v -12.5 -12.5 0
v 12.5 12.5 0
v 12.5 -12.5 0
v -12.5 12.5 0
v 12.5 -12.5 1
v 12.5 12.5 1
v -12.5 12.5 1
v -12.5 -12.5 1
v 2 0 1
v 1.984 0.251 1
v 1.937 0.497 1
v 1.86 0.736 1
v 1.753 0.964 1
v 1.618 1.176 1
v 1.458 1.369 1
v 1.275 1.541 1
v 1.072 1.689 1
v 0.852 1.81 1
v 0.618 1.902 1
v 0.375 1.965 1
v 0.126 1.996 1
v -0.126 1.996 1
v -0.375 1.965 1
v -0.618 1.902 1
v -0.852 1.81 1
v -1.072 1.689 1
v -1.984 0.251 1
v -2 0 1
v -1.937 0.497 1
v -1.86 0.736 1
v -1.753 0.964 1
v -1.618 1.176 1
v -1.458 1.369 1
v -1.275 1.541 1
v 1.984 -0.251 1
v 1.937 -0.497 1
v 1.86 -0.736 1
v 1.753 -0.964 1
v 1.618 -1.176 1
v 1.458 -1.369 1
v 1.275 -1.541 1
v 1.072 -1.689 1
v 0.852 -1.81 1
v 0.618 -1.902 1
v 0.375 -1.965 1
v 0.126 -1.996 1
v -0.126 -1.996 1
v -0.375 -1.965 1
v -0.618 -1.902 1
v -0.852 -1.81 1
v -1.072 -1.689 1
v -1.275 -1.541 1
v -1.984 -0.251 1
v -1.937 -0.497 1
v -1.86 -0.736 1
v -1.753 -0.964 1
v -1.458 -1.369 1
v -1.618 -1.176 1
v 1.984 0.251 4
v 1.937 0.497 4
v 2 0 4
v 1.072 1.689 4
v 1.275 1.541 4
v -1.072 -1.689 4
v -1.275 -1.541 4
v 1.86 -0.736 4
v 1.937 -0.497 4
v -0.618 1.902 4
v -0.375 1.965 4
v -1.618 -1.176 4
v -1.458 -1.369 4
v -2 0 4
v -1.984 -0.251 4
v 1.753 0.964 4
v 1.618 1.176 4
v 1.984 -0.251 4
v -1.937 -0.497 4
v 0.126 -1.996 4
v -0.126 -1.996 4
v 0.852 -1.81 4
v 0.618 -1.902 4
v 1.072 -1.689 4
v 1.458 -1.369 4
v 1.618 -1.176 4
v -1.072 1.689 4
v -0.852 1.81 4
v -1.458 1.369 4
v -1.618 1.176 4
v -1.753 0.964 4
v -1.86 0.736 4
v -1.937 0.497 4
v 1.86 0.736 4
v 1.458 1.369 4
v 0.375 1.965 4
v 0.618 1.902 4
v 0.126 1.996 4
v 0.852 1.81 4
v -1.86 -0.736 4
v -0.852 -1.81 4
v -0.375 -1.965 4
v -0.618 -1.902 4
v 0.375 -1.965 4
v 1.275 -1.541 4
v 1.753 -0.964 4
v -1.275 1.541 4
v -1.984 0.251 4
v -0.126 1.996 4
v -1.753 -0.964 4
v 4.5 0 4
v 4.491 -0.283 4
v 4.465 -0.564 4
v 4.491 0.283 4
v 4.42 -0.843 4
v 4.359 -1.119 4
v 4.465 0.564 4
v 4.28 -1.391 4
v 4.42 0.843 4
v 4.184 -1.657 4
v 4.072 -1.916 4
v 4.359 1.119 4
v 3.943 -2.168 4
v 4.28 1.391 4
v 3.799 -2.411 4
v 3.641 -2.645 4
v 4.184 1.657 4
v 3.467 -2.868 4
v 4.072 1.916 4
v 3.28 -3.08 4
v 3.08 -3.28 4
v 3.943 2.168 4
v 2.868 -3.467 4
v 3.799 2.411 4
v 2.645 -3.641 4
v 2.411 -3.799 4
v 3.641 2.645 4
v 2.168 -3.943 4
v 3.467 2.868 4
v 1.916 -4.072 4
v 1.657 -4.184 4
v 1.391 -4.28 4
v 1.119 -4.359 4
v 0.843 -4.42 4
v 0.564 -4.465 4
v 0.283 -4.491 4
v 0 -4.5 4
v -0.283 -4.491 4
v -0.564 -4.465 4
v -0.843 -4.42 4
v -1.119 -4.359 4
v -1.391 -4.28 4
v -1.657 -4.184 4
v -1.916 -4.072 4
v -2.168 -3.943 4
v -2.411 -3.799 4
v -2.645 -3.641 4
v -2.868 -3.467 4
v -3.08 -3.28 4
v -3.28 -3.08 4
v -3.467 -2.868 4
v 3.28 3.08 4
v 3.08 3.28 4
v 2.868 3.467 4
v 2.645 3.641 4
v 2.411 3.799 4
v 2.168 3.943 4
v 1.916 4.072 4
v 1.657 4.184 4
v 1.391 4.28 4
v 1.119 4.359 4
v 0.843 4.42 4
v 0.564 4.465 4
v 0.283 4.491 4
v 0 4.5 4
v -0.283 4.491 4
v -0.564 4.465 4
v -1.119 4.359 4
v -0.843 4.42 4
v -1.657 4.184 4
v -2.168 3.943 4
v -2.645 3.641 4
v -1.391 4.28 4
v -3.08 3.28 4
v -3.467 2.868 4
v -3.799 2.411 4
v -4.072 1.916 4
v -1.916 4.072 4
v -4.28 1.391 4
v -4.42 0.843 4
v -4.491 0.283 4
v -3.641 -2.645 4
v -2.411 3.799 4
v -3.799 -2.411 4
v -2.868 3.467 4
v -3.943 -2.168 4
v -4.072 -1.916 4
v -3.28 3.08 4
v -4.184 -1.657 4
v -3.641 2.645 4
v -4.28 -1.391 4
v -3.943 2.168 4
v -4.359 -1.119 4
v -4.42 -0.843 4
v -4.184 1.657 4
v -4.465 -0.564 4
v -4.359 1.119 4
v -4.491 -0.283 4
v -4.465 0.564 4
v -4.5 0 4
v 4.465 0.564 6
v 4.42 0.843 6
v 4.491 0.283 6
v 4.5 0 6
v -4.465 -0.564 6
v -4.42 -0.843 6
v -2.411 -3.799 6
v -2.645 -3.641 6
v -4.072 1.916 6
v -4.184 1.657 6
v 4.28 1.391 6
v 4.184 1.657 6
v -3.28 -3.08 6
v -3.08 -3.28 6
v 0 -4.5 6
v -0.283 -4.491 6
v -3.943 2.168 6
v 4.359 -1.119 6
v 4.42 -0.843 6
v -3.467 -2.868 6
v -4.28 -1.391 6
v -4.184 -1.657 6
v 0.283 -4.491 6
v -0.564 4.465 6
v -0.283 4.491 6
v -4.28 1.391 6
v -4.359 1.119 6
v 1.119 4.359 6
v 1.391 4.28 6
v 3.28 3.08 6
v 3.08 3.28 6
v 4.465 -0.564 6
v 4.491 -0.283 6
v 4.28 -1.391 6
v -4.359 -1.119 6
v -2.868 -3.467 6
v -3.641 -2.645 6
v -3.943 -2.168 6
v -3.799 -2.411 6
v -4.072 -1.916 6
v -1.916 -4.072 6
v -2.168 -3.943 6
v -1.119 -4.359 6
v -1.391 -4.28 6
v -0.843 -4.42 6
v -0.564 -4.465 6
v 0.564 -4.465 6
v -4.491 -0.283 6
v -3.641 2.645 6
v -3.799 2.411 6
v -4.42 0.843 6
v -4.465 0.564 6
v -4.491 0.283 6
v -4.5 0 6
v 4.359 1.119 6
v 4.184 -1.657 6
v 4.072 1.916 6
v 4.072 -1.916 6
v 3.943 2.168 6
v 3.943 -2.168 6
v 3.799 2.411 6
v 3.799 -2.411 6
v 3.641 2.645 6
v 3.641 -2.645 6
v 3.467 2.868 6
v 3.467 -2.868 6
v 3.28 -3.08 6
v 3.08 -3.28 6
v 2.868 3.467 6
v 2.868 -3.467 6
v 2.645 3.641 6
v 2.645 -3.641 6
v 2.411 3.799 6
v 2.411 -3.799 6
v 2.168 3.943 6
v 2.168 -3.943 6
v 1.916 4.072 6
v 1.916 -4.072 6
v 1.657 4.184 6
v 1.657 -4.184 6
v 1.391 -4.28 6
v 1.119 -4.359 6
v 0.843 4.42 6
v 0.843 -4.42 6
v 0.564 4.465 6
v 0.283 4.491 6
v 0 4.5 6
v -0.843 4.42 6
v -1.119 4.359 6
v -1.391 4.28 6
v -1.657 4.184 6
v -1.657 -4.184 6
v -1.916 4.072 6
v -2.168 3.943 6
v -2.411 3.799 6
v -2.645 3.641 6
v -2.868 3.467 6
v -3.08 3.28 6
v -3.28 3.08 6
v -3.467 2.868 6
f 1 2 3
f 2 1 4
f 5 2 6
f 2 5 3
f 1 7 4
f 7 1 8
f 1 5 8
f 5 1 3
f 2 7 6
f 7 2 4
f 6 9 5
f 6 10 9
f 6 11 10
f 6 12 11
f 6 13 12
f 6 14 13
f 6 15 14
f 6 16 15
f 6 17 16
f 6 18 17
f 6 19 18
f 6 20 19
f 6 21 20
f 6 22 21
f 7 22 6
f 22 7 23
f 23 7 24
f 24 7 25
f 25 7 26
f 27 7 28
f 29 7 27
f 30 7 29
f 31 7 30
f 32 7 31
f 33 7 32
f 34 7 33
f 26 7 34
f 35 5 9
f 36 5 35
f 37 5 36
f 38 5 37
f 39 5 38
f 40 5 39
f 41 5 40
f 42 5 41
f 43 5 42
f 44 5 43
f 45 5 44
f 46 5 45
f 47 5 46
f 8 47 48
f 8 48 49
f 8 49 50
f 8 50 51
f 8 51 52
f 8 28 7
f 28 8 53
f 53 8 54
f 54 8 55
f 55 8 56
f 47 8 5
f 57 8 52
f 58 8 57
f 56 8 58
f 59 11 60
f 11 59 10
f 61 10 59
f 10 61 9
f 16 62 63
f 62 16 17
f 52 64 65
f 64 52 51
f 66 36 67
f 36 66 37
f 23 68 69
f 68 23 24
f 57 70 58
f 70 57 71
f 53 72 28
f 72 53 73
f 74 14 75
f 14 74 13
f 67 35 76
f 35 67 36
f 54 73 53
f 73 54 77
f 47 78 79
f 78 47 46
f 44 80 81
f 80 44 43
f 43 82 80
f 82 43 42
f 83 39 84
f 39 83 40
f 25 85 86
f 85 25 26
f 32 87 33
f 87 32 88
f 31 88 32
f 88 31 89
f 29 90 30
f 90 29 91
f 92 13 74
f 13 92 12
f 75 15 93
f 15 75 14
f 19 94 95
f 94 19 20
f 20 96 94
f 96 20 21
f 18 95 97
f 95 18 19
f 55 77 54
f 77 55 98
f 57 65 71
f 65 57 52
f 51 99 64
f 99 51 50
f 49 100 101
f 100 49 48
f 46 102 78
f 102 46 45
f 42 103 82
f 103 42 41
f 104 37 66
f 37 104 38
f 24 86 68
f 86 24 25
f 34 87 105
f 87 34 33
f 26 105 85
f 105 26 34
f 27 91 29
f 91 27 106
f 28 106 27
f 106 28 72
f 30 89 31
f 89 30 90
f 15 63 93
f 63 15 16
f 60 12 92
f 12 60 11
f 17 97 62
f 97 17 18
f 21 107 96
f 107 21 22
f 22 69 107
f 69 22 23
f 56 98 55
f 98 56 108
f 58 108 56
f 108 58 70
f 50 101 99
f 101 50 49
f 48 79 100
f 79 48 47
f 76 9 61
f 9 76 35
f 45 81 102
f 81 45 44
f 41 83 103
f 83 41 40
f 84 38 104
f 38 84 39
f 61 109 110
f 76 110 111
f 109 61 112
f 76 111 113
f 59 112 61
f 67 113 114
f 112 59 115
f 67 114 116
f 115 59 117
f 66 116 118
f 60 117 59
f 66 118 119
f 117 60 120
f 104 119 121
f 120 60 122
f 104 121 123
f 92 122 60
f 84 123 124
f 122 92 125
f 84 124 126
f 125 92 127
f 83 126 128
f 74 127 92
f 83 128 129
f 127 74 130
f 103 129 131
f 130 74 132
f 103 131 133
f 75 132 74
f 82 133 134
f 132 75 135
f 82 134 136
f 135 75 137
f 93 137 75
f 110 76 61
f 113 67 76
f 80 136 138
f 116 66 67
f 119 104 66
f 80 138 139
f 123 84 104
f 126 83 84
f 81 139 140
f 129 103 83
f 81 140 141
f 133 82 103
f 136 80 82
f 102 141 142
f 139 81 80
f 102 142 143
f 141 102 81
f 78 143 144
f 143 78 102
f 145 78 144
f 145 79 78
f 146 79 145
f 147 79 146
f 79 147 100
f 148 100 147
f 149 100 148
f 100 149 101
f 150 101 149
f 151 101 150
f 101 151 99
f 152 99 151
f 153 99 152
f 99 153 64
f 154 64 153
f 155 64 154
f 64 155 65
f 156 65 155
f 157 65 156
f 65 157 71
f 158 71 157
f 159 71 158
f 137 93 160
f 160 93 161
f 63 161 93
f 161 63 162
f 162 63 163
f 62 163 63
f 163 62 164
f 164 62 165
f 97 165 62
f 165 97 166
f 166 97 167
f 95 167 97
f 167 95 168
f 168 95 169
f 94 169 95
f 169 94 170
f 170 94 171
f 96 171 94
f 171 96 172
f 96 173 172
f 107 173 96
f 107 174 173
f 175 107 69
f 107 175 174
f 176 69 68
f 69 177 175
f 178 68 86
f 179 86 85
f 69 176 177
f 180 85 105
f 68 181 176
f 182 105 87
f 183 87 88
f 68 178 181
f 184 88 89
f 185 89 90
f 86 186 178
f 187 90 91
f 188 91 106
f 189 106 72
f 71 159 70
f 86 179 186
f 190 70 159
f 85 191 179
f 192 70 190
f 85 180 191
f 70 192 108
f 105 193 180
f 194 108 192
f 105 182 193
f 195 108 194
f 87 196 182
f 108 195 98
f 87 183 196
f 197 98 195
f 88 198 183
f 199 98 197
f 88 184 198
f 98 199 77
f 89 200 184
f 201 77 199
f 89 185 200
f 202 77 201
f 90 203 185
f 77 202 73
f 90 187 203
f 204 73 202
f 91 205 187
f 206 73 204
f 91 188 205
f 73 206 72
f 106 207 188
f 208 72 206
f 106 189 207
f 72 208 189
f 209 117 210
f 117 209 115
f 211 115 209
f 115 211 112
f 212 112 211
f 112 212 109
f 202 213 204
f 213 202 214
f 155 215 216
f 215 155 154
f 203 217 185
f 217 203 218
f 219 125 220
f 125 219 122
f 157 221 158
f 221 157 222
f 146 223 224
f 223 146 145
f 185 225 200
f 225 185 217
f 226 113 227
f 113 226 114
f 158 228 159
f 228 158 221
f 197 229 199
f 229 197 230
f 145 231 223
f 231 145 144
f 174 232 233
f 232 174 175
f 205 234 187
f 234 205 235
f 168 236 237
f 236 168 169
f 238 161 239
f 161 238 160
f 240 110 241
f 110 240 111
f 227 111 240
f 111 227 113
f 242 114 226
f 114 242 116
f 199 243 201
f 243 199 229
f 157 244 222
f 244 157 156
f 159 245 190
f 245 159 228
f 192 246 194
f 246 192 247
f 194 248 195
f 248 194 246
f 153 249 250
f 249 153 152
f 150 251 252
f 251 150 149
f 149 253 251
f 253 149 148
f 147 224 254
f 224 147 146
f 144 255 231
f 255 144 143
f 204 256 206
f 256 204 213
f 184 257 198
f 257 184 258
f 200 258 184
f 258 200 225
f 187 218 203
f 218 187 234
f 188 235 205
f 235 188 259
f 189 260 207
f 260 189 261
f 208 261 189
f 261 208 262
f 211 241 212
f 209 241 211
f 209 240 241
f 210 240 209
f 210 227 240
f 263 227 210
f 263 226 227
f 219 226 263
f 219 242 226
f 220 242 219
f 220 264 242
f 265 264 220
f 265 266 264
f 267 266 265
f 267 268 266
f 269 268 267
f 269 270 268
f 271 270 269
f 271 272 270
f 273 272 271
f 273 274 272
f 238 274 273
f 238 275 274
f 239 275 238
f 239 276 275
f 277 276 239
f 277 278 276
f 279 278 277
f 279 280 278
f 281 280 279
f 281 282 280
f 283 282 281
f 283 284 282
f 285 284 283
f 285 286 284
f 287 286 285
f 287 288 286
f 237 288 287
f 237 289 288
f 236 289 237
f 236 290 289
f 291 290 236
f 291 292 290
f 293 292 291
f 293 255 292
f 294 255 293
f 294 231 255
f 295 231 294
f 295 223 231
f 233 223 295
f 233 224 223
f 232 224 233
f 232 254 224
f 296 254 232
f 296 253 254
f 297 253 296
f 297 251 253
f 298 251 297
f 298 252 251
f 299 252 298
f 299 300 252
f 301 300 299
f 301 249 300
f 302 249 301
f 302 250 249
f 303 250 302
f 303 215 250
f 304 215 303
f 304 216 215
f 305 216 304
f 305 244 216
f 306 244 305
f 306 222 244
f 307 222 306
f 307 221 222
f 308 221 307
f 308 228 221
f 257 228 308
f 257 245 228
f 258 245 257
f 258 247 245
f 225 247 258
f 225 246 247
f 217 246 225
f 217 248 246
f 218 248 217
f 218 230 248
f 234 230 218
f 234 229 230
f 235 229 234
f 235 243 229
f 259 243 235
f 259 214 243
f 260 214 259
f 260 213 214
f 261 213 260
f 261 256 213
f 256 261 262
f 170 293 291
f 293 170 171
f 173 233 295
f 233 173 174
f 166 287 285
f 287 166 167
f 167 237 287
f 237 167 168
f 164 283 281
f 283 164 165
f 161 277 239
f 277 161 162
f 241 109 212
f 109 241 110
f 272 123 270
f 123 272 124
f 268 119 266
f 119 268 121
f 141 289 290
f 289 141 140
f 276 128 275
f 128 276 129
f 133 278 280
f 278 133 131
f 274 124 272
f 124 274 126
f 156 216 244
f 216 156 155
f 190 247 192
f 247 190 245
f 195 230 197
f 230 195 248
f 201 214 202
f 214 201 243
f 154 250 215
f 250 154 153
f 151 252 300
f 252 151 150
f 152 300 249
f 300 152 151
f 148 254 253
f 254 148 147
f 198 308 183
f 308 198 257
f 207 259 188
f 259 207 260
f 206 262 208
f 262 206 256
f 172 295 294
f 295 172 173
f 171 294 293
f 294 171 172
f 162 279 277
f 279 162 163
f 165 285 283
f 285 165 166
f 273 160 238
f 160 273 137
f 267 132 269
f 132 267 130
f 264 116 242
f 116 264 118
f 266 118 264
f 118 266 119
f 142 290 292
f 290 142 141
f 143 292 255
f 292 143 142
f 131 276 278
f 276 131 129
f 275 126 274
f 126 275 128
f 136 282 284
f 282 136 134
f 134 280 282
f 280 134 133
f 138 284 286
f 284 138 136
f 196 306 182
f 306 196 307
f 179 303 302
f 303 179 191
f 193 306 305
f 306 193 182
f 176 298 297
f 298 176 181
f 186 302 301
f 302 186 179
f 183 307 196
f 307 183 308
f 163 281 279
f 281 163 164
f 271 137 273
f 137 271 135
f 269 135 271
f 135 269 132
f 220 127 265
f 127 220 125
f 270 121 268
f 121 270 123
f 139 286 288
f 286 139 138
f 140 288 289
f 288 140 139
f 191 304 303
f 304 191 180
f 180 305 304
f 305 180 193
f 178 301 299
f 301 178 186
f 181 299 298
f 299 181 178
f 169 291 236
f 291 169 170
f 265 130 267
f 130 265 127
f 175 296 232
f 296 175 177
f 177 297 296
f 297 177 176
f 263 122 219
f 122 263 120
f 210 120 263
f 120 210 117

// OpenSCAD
// Vincent Moeykens, 2020

echo(version=version());

baseX = 25;
baseY = 25;
baseZ = 1;
shaftHeight = 3;
shaftDiameter = 4;
buttonHeight = 2;
buttonDiameter = 9;

// simple 2D -> 3D extrusion of a rectangle
color("red")
linear_extrude(height = baseZ)
square([baseX, baseY], center = true);
translate([0, 0, baseZ])
    linear_extrude(height = shaftHeight)
        circle(d=shaftDiameter, $fn=50);
translate([0, 0, baseZ + shaftHeight])
    linear_extrude(height = buttonHeight)
        circle(d=buttonDiameter, $fn=100);
